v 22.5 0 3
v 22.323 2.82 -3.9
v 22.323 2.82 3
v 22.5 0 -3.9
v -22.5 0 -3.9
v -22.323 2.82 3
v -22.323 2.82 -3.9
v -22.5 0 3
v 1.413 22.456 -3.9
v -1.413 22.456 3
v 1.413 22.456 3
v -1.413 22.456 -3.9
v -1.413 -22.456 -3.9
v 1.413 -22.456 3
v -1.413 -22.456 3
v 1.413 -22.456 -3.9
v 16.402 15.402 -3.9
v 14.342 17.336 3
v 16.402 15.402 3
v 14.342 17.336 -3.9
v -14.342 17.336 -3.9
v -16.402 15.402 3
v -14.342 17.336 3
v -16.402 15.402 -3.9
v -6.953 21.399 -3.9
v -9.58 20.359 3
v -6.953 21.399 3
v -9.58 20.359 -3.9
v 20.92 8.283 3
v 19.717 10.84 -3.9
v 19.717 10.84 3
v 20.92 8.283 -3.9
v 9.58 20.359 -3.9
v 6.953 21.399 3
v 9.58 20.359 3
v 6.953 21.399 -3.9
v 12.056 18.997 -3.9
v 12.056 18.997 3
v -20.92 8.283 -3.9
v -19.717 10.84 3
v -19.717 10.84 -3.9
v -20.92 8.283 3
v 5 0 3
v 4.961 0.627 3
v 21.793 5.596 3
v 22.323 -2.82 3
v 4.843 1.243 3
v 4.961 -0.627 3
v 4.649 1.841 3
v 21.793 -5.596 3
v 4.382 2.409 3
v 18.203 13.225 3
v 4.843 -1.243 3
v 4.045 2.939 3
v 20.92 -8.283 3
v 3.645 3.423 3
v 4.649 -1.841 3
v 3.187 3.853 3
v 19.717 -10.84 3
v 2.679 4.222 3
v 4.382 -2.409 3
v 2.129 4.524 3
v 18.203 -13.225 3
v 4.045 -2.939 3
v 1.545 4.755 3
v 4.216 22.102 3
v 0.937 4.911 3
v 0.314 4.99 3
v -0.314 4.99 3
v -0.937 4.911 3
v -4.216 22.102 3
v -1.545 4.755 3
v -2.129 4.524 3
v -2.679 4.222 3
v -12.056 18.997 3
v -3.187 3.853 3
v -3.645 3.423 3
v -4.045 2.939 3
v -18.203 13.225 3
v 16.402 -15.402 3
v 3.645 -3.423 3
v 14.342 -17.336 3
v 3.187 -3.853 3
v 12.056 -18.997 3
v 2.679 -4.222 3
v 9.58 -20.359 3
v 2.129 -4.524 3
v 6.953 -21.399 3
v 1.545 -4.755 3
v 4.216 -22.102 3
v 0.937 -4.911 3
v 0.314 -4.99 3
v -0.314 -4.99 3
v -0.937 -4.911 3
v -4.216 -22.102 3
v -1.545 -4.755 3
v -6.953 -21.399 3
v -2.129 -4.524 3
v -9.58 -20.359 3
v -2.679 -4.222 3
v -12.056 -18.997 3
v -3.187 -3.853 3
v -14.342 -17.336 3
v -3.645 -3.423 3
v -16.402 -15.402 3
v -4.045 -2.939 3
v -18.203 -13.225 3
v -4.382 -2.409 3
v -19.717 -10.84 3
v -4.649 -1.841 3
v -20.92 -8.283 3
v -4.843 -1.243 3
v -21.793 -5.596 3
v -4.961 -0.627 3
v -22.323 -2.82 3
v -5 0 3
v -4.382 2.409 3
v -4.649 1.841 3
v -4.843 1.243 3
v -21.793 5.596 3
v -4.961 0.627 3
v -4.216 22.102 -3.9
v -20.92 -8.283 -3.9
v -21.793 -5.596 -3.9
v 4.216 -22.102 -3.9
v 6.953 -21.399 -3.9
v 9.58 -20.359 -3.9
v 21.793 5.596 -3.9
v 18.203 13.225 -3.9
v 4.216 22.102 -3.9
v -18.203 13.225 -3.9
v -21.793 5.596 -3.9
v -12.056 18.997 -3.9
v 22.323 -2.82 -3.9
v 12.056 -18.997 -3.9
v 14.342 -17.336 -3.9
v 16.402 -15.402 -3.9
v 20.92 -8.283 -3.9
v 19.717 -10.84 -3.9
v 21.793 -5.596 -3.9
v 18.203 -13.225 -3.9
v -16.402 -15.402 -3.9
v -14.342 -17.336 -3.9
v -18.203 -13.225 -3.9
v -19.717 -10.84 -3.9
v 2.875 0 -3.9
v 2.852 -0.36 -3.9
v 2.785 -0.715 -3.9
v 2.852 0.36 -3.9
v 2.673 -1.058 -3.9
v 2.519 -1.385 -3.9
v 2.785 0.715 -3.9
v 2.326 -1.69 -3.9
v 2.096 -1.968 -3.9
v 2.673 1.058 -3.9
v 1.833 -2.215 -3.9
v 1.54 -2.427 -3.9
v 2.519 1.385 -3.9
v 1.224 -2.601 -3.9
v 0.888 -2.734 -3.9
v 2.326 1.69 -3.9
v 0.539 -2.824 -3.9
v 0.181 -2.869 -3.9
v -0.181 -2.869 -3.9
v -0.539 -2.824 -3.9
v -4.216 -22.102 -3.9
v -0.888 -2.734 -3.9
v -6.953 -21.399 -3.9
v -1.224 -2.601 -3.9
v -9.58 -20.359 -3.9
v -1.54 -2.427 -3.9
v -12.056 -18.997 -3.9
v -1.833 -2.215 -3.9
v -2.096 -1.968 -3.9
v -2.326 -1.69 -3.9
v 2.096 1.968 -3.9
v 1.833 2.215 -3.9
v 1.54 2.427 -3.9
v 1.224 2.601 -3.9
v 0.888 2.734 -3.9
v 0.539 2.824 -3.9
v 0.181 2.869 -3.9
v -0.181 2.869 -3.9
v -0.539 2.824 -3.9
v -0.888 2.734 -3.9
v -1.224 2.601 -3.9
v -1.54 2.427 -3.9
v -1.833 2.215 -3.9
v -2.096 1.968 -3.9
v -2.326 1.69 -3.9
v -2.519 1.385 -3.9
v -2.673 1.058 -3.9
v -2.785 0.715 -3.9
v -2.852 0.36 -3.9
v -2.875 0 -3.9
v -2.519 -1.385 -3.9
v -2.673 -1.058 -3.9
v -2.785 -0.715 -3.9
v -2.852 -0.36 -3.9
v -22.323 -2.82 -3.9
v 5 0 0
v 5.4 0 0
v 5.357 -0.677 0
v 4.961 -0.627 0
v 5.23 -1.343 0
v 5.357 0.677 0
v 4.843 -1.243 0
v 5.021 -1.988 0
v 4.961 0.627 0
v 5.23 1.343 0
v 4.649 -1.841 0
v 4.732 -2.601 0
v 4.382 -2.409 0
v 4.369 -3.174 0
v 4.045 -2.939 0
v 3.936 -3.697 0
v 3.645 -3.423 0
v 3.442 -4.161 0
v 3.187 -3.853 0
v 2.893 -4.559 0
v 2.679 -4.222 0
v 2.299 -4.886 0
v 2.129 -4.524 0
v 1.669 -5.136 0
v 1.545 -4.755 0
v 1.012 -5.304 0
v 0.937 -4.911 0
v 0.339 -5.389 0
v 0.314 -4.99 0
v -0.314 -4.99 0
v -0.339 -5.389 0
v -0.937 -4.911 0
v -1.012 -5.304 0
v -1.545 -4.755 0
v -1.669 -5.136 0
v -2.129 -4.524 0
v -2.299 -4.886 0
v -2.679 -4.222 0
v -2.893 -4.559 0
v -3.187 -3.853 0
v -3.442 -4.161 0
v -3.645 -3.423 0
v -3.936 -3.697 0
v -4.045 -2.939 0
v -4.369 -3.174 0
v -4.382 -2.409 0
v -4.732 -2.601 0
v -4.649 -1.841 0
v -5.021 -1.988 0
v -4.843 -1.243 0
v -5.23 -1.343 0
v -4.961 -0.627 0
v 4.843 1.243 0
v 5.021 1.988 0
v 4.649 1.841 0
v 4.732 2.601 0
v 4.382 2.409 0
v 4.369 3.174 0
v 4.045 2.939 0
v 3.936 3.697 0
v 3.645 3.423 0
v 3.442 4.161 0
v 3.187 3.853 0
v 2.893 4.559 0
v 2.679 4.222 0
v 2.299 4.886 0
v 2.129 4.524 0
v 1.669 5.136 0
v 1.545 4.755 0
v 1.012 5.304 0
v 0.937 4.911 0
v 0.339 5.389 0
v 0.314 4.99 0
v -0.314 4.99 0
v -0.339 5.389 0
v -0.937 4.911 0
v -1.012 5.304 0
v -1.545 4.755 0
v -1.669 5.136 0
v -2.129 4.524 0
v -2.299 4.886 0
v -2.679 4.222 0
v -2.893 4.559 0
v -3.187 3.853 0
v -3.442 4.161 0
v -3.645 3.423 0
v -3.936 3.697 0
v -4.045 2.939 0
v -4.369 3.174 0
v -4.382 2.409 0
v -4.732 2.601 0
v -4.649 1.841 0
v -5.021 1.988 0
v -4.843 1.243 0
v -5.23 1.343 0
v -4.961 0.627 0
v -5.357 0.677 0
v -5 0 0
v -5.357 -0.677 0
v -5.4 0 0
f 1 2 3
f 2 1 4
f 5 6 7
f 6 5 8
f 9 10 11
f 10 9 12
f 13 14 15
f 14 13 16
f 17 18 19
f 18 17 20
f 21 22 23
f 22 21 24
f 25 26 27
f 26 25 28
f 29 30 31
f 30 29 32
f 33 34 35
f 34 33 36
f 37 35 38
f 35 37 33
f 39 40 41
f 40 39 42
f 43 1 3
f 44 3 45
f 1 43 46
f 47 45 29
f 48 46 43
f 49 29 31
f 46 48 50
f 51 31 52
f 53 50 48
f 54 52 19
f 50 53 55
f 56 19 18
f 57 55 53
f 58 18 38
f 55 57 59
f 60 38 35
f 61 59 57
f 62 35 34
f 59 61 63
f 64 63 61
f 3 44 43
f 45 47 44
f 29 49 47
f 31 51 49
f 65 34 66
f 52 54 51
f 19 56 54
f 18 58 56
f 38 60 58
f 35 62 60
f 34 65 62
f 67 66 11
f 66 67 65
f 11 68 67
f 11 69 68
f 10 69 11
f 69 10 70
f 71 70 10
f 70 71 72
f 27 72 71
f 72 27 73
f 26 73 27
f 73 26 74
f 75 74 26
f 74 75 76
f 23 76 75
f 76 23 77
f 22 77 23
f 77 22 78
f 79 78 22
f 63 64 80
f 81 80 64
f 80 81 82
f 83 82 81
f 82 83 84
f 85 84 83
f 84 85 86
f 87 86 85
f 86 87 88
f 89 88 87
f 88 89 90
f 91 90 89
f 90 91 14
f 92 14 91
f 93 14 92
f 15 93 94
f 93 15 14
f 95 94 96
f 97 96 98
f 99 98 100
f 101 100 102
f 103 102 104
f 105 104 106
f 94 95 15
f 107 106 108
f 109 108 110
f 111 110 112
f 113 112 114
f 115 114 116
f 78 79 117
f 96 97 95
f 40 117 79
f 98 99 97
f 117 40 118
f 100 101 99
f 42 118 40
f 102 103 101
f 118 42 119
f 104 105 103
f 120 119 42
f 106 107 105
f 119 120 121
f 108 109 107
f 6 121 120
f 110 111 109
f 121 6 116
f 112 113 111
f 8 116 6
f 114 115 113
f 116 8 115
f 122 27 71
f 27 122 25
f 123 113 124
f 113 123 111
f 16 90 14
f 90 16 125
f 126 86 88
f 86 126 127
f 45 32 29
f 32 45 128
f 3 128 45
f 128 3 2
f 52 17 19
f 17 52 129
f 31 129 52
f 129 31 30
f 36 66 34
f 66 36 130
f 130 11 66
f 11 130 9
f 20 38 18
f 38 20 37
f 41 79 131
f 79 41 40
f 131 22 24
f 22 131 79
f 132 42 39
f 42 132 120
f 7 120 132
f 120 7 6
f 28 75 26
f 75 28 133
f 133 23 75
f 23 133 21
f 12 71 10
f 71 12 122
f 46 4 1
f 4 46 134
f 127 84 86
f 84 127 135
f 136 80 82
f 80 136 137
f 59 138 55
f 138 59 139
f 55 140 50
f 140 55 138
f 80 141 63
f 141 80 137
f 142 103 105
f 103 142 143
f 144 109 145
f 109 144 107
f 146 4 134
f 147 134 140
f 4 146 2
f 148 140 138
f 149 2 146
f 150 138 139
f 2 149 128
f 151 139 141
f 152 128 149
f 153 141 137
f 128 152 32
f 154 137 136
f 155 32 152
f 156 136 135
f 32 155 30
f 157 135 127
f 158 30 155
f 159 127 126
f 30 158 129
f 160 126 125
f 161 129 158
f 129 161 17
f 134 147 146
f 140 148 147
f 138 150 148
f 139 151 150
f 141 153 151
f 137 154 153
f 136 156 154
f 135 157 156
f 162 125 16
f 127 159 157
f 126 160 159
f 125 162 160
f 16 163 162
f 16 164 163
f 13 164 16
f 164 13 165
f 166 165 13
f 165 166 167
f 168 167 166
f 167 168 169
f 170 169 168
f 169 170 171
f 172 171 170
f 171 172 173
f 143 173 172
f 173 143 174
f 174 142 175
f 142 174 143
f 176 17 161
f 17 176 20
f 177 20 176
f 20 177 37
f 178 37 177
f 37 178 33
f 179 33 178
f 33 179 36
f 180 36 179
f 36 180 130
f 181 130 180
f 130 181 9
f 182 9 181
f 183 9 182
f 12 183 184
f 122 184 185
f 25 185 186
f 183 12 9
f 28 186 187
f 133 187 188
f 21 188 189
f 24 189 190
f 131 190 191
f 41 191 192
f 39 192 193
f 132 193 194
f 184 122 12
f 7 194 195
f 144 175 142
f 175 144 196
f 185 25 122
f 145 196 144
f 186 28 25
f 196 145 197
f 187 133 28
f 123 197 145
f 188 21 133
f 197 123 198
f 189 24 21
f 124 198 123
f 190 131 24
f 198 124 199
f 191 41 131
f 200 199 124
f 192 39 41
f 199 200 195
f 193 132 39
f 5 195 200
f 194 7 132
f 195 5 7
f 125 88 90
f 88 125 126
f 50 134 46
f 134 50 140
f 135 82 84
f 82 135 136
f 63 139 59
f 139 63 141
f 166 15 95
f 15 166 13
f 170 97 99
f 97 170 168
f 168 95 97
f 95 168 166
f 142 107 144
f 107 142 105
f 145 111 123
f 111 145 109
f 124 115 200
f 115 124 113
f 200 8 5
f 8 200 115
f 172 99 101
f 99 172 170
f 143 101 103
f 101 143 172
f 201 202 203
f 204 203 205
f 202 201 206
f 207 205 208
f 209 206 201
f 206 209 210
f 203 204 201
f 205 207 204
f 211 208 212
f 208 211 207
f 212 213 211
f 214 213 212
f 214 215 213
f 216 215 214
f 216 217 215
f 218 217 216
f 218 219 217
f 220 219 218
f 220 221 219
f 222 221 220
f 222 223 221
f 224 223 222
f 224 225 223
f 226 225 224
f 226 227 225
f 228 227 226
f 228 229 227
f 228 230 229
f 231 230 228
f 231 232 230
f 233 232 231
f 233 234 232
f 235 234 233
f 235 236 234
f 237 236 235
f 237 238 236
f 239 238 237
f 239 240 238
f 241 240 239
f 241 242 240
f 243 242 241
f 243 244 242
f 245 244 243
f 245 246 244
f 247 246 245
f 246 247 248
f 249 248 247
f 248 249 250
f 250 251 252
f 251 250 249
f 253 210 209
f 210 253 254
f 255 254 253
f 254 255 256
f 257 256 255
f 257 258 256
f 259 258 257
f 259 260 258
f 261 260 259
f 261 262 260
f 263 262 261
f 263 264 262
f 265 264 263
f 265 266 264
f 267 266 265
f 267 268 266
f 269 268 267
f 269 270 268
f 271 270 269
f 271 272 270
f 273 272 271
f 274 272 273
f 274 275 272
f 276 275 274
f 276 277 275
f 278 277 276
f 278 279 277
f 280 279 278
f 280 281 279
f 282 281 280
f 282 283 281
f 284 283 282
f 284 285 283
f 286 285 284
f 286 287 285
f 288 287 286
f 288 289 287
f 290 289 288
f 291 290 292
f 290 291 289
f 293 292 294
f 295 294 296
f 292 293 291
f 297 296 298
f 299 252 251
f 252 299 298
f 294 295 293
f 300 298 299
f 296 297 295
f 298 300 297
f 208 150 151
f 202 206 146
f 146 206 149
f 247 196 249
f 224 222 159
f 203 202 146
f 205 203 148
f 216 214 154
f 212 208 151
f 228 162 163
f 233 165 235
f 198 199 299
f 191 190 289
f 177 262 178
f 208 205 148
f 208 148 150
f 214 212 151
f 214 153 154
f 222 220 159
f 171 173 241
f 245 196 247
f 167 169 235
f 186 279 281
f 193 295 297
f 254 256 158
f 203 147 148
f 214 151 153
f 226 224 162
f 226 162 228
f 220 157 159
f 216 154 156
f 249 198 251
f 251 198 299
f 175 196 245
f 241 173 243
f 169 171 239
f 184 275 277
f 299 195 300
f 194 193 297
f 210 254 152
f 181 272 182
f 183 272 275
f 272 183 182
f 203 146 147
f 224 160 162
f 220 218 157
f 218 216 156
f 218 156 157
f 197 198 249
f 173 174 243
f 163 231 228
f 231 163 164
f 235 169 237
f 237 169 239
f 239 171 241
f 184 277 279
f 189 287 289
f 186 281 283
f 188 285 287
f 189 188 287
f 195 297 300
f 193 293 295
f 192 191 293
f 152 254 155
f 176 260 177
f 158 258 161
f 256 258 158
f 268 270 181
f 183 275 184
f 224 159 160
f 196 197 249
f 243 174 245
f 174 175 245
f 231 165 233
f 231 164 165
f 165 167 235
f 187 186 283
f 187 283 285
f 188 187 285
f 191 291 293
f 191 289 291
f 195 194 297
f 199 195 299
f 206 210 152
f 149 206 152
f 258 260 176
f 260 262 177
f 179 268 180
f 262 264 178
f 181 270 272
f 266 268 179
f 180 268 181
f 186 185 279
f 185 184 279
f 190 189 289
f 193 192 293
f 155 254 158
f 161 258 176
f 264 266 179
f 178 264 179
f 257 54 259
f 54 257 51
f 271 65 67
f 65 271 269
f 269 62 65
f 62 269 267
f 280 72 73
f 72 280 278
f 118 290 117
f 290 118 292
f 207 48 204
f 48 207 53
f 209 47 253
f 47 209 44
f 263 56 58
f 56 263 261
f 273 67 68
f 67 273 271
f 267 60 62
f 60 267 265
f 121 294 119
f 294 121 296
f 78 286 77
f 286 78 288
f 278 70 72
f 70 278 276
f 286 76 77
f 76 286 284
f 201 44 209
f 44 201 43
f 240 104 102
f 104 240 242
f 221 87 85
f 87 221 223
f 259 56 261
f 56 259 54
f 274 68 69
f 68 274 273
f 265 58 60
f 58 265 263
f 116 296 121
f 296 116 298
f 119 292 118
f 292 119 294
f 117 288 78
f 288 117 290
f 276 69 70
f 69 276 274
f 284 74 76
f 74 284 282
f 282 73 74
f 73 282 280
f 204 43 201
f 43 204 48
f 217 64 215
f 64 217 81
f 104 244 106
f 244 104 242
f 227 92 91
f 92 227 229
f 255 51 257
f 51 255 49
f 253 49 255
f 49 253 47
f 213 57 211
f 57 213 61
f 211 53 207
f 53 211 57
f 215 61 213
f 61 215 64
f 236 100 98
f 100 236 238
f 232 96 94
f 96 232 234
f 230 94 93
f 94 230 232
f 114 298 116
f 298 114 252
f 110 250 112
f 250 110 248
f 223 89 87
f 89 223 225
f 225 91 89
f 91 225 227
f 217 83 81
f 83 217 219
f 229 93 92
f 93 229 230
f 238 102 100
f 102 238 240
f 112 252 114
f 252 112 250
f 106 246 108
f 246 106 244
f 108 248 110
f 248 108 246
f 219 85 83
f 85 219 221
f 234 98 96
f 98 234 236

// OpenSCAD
$fn = 50;


difference() {
	union() {
		translate(v = [0, 0, -3.9000000000]) {
			cylinder(h = 6.9000000000, r = 22.5000000000);
		}
		#translate(v = [0, 0, -6.9000000000]) {
			cylinder(h = 6.9000000000, r = 2.8750000000);
		}
	}
	union() {
		translate(v = [0, 0, 0]) {
			rotate(a = [0, 0, 0]) {
				difference() {
					union() {
						translate(v = [0, 0, -6.9000000000]) {
							cylinder(h = 6.9000000000, r = 2.6000000000);
						}
						translate(v = [0, 0, -3.9000000000]) {
							cylinder(h = 3.9000000000, r1 = 2.8750000000, r2 = 5.4000000000);
						}
						translate(v = [0, 0, -6.9000000000]) {
							cylinder(h = 6.9000000000, r = 2.8750000000);
						}
						translate(v = [0, 0, -6.9000000000]) {
							cylinder(h = 6.9000000000, r = 2.6000000000);
						}
					}
					union();
				}
			}
		}
		#cylinder(h = 3, r = 5.0000000000);
	}
}
